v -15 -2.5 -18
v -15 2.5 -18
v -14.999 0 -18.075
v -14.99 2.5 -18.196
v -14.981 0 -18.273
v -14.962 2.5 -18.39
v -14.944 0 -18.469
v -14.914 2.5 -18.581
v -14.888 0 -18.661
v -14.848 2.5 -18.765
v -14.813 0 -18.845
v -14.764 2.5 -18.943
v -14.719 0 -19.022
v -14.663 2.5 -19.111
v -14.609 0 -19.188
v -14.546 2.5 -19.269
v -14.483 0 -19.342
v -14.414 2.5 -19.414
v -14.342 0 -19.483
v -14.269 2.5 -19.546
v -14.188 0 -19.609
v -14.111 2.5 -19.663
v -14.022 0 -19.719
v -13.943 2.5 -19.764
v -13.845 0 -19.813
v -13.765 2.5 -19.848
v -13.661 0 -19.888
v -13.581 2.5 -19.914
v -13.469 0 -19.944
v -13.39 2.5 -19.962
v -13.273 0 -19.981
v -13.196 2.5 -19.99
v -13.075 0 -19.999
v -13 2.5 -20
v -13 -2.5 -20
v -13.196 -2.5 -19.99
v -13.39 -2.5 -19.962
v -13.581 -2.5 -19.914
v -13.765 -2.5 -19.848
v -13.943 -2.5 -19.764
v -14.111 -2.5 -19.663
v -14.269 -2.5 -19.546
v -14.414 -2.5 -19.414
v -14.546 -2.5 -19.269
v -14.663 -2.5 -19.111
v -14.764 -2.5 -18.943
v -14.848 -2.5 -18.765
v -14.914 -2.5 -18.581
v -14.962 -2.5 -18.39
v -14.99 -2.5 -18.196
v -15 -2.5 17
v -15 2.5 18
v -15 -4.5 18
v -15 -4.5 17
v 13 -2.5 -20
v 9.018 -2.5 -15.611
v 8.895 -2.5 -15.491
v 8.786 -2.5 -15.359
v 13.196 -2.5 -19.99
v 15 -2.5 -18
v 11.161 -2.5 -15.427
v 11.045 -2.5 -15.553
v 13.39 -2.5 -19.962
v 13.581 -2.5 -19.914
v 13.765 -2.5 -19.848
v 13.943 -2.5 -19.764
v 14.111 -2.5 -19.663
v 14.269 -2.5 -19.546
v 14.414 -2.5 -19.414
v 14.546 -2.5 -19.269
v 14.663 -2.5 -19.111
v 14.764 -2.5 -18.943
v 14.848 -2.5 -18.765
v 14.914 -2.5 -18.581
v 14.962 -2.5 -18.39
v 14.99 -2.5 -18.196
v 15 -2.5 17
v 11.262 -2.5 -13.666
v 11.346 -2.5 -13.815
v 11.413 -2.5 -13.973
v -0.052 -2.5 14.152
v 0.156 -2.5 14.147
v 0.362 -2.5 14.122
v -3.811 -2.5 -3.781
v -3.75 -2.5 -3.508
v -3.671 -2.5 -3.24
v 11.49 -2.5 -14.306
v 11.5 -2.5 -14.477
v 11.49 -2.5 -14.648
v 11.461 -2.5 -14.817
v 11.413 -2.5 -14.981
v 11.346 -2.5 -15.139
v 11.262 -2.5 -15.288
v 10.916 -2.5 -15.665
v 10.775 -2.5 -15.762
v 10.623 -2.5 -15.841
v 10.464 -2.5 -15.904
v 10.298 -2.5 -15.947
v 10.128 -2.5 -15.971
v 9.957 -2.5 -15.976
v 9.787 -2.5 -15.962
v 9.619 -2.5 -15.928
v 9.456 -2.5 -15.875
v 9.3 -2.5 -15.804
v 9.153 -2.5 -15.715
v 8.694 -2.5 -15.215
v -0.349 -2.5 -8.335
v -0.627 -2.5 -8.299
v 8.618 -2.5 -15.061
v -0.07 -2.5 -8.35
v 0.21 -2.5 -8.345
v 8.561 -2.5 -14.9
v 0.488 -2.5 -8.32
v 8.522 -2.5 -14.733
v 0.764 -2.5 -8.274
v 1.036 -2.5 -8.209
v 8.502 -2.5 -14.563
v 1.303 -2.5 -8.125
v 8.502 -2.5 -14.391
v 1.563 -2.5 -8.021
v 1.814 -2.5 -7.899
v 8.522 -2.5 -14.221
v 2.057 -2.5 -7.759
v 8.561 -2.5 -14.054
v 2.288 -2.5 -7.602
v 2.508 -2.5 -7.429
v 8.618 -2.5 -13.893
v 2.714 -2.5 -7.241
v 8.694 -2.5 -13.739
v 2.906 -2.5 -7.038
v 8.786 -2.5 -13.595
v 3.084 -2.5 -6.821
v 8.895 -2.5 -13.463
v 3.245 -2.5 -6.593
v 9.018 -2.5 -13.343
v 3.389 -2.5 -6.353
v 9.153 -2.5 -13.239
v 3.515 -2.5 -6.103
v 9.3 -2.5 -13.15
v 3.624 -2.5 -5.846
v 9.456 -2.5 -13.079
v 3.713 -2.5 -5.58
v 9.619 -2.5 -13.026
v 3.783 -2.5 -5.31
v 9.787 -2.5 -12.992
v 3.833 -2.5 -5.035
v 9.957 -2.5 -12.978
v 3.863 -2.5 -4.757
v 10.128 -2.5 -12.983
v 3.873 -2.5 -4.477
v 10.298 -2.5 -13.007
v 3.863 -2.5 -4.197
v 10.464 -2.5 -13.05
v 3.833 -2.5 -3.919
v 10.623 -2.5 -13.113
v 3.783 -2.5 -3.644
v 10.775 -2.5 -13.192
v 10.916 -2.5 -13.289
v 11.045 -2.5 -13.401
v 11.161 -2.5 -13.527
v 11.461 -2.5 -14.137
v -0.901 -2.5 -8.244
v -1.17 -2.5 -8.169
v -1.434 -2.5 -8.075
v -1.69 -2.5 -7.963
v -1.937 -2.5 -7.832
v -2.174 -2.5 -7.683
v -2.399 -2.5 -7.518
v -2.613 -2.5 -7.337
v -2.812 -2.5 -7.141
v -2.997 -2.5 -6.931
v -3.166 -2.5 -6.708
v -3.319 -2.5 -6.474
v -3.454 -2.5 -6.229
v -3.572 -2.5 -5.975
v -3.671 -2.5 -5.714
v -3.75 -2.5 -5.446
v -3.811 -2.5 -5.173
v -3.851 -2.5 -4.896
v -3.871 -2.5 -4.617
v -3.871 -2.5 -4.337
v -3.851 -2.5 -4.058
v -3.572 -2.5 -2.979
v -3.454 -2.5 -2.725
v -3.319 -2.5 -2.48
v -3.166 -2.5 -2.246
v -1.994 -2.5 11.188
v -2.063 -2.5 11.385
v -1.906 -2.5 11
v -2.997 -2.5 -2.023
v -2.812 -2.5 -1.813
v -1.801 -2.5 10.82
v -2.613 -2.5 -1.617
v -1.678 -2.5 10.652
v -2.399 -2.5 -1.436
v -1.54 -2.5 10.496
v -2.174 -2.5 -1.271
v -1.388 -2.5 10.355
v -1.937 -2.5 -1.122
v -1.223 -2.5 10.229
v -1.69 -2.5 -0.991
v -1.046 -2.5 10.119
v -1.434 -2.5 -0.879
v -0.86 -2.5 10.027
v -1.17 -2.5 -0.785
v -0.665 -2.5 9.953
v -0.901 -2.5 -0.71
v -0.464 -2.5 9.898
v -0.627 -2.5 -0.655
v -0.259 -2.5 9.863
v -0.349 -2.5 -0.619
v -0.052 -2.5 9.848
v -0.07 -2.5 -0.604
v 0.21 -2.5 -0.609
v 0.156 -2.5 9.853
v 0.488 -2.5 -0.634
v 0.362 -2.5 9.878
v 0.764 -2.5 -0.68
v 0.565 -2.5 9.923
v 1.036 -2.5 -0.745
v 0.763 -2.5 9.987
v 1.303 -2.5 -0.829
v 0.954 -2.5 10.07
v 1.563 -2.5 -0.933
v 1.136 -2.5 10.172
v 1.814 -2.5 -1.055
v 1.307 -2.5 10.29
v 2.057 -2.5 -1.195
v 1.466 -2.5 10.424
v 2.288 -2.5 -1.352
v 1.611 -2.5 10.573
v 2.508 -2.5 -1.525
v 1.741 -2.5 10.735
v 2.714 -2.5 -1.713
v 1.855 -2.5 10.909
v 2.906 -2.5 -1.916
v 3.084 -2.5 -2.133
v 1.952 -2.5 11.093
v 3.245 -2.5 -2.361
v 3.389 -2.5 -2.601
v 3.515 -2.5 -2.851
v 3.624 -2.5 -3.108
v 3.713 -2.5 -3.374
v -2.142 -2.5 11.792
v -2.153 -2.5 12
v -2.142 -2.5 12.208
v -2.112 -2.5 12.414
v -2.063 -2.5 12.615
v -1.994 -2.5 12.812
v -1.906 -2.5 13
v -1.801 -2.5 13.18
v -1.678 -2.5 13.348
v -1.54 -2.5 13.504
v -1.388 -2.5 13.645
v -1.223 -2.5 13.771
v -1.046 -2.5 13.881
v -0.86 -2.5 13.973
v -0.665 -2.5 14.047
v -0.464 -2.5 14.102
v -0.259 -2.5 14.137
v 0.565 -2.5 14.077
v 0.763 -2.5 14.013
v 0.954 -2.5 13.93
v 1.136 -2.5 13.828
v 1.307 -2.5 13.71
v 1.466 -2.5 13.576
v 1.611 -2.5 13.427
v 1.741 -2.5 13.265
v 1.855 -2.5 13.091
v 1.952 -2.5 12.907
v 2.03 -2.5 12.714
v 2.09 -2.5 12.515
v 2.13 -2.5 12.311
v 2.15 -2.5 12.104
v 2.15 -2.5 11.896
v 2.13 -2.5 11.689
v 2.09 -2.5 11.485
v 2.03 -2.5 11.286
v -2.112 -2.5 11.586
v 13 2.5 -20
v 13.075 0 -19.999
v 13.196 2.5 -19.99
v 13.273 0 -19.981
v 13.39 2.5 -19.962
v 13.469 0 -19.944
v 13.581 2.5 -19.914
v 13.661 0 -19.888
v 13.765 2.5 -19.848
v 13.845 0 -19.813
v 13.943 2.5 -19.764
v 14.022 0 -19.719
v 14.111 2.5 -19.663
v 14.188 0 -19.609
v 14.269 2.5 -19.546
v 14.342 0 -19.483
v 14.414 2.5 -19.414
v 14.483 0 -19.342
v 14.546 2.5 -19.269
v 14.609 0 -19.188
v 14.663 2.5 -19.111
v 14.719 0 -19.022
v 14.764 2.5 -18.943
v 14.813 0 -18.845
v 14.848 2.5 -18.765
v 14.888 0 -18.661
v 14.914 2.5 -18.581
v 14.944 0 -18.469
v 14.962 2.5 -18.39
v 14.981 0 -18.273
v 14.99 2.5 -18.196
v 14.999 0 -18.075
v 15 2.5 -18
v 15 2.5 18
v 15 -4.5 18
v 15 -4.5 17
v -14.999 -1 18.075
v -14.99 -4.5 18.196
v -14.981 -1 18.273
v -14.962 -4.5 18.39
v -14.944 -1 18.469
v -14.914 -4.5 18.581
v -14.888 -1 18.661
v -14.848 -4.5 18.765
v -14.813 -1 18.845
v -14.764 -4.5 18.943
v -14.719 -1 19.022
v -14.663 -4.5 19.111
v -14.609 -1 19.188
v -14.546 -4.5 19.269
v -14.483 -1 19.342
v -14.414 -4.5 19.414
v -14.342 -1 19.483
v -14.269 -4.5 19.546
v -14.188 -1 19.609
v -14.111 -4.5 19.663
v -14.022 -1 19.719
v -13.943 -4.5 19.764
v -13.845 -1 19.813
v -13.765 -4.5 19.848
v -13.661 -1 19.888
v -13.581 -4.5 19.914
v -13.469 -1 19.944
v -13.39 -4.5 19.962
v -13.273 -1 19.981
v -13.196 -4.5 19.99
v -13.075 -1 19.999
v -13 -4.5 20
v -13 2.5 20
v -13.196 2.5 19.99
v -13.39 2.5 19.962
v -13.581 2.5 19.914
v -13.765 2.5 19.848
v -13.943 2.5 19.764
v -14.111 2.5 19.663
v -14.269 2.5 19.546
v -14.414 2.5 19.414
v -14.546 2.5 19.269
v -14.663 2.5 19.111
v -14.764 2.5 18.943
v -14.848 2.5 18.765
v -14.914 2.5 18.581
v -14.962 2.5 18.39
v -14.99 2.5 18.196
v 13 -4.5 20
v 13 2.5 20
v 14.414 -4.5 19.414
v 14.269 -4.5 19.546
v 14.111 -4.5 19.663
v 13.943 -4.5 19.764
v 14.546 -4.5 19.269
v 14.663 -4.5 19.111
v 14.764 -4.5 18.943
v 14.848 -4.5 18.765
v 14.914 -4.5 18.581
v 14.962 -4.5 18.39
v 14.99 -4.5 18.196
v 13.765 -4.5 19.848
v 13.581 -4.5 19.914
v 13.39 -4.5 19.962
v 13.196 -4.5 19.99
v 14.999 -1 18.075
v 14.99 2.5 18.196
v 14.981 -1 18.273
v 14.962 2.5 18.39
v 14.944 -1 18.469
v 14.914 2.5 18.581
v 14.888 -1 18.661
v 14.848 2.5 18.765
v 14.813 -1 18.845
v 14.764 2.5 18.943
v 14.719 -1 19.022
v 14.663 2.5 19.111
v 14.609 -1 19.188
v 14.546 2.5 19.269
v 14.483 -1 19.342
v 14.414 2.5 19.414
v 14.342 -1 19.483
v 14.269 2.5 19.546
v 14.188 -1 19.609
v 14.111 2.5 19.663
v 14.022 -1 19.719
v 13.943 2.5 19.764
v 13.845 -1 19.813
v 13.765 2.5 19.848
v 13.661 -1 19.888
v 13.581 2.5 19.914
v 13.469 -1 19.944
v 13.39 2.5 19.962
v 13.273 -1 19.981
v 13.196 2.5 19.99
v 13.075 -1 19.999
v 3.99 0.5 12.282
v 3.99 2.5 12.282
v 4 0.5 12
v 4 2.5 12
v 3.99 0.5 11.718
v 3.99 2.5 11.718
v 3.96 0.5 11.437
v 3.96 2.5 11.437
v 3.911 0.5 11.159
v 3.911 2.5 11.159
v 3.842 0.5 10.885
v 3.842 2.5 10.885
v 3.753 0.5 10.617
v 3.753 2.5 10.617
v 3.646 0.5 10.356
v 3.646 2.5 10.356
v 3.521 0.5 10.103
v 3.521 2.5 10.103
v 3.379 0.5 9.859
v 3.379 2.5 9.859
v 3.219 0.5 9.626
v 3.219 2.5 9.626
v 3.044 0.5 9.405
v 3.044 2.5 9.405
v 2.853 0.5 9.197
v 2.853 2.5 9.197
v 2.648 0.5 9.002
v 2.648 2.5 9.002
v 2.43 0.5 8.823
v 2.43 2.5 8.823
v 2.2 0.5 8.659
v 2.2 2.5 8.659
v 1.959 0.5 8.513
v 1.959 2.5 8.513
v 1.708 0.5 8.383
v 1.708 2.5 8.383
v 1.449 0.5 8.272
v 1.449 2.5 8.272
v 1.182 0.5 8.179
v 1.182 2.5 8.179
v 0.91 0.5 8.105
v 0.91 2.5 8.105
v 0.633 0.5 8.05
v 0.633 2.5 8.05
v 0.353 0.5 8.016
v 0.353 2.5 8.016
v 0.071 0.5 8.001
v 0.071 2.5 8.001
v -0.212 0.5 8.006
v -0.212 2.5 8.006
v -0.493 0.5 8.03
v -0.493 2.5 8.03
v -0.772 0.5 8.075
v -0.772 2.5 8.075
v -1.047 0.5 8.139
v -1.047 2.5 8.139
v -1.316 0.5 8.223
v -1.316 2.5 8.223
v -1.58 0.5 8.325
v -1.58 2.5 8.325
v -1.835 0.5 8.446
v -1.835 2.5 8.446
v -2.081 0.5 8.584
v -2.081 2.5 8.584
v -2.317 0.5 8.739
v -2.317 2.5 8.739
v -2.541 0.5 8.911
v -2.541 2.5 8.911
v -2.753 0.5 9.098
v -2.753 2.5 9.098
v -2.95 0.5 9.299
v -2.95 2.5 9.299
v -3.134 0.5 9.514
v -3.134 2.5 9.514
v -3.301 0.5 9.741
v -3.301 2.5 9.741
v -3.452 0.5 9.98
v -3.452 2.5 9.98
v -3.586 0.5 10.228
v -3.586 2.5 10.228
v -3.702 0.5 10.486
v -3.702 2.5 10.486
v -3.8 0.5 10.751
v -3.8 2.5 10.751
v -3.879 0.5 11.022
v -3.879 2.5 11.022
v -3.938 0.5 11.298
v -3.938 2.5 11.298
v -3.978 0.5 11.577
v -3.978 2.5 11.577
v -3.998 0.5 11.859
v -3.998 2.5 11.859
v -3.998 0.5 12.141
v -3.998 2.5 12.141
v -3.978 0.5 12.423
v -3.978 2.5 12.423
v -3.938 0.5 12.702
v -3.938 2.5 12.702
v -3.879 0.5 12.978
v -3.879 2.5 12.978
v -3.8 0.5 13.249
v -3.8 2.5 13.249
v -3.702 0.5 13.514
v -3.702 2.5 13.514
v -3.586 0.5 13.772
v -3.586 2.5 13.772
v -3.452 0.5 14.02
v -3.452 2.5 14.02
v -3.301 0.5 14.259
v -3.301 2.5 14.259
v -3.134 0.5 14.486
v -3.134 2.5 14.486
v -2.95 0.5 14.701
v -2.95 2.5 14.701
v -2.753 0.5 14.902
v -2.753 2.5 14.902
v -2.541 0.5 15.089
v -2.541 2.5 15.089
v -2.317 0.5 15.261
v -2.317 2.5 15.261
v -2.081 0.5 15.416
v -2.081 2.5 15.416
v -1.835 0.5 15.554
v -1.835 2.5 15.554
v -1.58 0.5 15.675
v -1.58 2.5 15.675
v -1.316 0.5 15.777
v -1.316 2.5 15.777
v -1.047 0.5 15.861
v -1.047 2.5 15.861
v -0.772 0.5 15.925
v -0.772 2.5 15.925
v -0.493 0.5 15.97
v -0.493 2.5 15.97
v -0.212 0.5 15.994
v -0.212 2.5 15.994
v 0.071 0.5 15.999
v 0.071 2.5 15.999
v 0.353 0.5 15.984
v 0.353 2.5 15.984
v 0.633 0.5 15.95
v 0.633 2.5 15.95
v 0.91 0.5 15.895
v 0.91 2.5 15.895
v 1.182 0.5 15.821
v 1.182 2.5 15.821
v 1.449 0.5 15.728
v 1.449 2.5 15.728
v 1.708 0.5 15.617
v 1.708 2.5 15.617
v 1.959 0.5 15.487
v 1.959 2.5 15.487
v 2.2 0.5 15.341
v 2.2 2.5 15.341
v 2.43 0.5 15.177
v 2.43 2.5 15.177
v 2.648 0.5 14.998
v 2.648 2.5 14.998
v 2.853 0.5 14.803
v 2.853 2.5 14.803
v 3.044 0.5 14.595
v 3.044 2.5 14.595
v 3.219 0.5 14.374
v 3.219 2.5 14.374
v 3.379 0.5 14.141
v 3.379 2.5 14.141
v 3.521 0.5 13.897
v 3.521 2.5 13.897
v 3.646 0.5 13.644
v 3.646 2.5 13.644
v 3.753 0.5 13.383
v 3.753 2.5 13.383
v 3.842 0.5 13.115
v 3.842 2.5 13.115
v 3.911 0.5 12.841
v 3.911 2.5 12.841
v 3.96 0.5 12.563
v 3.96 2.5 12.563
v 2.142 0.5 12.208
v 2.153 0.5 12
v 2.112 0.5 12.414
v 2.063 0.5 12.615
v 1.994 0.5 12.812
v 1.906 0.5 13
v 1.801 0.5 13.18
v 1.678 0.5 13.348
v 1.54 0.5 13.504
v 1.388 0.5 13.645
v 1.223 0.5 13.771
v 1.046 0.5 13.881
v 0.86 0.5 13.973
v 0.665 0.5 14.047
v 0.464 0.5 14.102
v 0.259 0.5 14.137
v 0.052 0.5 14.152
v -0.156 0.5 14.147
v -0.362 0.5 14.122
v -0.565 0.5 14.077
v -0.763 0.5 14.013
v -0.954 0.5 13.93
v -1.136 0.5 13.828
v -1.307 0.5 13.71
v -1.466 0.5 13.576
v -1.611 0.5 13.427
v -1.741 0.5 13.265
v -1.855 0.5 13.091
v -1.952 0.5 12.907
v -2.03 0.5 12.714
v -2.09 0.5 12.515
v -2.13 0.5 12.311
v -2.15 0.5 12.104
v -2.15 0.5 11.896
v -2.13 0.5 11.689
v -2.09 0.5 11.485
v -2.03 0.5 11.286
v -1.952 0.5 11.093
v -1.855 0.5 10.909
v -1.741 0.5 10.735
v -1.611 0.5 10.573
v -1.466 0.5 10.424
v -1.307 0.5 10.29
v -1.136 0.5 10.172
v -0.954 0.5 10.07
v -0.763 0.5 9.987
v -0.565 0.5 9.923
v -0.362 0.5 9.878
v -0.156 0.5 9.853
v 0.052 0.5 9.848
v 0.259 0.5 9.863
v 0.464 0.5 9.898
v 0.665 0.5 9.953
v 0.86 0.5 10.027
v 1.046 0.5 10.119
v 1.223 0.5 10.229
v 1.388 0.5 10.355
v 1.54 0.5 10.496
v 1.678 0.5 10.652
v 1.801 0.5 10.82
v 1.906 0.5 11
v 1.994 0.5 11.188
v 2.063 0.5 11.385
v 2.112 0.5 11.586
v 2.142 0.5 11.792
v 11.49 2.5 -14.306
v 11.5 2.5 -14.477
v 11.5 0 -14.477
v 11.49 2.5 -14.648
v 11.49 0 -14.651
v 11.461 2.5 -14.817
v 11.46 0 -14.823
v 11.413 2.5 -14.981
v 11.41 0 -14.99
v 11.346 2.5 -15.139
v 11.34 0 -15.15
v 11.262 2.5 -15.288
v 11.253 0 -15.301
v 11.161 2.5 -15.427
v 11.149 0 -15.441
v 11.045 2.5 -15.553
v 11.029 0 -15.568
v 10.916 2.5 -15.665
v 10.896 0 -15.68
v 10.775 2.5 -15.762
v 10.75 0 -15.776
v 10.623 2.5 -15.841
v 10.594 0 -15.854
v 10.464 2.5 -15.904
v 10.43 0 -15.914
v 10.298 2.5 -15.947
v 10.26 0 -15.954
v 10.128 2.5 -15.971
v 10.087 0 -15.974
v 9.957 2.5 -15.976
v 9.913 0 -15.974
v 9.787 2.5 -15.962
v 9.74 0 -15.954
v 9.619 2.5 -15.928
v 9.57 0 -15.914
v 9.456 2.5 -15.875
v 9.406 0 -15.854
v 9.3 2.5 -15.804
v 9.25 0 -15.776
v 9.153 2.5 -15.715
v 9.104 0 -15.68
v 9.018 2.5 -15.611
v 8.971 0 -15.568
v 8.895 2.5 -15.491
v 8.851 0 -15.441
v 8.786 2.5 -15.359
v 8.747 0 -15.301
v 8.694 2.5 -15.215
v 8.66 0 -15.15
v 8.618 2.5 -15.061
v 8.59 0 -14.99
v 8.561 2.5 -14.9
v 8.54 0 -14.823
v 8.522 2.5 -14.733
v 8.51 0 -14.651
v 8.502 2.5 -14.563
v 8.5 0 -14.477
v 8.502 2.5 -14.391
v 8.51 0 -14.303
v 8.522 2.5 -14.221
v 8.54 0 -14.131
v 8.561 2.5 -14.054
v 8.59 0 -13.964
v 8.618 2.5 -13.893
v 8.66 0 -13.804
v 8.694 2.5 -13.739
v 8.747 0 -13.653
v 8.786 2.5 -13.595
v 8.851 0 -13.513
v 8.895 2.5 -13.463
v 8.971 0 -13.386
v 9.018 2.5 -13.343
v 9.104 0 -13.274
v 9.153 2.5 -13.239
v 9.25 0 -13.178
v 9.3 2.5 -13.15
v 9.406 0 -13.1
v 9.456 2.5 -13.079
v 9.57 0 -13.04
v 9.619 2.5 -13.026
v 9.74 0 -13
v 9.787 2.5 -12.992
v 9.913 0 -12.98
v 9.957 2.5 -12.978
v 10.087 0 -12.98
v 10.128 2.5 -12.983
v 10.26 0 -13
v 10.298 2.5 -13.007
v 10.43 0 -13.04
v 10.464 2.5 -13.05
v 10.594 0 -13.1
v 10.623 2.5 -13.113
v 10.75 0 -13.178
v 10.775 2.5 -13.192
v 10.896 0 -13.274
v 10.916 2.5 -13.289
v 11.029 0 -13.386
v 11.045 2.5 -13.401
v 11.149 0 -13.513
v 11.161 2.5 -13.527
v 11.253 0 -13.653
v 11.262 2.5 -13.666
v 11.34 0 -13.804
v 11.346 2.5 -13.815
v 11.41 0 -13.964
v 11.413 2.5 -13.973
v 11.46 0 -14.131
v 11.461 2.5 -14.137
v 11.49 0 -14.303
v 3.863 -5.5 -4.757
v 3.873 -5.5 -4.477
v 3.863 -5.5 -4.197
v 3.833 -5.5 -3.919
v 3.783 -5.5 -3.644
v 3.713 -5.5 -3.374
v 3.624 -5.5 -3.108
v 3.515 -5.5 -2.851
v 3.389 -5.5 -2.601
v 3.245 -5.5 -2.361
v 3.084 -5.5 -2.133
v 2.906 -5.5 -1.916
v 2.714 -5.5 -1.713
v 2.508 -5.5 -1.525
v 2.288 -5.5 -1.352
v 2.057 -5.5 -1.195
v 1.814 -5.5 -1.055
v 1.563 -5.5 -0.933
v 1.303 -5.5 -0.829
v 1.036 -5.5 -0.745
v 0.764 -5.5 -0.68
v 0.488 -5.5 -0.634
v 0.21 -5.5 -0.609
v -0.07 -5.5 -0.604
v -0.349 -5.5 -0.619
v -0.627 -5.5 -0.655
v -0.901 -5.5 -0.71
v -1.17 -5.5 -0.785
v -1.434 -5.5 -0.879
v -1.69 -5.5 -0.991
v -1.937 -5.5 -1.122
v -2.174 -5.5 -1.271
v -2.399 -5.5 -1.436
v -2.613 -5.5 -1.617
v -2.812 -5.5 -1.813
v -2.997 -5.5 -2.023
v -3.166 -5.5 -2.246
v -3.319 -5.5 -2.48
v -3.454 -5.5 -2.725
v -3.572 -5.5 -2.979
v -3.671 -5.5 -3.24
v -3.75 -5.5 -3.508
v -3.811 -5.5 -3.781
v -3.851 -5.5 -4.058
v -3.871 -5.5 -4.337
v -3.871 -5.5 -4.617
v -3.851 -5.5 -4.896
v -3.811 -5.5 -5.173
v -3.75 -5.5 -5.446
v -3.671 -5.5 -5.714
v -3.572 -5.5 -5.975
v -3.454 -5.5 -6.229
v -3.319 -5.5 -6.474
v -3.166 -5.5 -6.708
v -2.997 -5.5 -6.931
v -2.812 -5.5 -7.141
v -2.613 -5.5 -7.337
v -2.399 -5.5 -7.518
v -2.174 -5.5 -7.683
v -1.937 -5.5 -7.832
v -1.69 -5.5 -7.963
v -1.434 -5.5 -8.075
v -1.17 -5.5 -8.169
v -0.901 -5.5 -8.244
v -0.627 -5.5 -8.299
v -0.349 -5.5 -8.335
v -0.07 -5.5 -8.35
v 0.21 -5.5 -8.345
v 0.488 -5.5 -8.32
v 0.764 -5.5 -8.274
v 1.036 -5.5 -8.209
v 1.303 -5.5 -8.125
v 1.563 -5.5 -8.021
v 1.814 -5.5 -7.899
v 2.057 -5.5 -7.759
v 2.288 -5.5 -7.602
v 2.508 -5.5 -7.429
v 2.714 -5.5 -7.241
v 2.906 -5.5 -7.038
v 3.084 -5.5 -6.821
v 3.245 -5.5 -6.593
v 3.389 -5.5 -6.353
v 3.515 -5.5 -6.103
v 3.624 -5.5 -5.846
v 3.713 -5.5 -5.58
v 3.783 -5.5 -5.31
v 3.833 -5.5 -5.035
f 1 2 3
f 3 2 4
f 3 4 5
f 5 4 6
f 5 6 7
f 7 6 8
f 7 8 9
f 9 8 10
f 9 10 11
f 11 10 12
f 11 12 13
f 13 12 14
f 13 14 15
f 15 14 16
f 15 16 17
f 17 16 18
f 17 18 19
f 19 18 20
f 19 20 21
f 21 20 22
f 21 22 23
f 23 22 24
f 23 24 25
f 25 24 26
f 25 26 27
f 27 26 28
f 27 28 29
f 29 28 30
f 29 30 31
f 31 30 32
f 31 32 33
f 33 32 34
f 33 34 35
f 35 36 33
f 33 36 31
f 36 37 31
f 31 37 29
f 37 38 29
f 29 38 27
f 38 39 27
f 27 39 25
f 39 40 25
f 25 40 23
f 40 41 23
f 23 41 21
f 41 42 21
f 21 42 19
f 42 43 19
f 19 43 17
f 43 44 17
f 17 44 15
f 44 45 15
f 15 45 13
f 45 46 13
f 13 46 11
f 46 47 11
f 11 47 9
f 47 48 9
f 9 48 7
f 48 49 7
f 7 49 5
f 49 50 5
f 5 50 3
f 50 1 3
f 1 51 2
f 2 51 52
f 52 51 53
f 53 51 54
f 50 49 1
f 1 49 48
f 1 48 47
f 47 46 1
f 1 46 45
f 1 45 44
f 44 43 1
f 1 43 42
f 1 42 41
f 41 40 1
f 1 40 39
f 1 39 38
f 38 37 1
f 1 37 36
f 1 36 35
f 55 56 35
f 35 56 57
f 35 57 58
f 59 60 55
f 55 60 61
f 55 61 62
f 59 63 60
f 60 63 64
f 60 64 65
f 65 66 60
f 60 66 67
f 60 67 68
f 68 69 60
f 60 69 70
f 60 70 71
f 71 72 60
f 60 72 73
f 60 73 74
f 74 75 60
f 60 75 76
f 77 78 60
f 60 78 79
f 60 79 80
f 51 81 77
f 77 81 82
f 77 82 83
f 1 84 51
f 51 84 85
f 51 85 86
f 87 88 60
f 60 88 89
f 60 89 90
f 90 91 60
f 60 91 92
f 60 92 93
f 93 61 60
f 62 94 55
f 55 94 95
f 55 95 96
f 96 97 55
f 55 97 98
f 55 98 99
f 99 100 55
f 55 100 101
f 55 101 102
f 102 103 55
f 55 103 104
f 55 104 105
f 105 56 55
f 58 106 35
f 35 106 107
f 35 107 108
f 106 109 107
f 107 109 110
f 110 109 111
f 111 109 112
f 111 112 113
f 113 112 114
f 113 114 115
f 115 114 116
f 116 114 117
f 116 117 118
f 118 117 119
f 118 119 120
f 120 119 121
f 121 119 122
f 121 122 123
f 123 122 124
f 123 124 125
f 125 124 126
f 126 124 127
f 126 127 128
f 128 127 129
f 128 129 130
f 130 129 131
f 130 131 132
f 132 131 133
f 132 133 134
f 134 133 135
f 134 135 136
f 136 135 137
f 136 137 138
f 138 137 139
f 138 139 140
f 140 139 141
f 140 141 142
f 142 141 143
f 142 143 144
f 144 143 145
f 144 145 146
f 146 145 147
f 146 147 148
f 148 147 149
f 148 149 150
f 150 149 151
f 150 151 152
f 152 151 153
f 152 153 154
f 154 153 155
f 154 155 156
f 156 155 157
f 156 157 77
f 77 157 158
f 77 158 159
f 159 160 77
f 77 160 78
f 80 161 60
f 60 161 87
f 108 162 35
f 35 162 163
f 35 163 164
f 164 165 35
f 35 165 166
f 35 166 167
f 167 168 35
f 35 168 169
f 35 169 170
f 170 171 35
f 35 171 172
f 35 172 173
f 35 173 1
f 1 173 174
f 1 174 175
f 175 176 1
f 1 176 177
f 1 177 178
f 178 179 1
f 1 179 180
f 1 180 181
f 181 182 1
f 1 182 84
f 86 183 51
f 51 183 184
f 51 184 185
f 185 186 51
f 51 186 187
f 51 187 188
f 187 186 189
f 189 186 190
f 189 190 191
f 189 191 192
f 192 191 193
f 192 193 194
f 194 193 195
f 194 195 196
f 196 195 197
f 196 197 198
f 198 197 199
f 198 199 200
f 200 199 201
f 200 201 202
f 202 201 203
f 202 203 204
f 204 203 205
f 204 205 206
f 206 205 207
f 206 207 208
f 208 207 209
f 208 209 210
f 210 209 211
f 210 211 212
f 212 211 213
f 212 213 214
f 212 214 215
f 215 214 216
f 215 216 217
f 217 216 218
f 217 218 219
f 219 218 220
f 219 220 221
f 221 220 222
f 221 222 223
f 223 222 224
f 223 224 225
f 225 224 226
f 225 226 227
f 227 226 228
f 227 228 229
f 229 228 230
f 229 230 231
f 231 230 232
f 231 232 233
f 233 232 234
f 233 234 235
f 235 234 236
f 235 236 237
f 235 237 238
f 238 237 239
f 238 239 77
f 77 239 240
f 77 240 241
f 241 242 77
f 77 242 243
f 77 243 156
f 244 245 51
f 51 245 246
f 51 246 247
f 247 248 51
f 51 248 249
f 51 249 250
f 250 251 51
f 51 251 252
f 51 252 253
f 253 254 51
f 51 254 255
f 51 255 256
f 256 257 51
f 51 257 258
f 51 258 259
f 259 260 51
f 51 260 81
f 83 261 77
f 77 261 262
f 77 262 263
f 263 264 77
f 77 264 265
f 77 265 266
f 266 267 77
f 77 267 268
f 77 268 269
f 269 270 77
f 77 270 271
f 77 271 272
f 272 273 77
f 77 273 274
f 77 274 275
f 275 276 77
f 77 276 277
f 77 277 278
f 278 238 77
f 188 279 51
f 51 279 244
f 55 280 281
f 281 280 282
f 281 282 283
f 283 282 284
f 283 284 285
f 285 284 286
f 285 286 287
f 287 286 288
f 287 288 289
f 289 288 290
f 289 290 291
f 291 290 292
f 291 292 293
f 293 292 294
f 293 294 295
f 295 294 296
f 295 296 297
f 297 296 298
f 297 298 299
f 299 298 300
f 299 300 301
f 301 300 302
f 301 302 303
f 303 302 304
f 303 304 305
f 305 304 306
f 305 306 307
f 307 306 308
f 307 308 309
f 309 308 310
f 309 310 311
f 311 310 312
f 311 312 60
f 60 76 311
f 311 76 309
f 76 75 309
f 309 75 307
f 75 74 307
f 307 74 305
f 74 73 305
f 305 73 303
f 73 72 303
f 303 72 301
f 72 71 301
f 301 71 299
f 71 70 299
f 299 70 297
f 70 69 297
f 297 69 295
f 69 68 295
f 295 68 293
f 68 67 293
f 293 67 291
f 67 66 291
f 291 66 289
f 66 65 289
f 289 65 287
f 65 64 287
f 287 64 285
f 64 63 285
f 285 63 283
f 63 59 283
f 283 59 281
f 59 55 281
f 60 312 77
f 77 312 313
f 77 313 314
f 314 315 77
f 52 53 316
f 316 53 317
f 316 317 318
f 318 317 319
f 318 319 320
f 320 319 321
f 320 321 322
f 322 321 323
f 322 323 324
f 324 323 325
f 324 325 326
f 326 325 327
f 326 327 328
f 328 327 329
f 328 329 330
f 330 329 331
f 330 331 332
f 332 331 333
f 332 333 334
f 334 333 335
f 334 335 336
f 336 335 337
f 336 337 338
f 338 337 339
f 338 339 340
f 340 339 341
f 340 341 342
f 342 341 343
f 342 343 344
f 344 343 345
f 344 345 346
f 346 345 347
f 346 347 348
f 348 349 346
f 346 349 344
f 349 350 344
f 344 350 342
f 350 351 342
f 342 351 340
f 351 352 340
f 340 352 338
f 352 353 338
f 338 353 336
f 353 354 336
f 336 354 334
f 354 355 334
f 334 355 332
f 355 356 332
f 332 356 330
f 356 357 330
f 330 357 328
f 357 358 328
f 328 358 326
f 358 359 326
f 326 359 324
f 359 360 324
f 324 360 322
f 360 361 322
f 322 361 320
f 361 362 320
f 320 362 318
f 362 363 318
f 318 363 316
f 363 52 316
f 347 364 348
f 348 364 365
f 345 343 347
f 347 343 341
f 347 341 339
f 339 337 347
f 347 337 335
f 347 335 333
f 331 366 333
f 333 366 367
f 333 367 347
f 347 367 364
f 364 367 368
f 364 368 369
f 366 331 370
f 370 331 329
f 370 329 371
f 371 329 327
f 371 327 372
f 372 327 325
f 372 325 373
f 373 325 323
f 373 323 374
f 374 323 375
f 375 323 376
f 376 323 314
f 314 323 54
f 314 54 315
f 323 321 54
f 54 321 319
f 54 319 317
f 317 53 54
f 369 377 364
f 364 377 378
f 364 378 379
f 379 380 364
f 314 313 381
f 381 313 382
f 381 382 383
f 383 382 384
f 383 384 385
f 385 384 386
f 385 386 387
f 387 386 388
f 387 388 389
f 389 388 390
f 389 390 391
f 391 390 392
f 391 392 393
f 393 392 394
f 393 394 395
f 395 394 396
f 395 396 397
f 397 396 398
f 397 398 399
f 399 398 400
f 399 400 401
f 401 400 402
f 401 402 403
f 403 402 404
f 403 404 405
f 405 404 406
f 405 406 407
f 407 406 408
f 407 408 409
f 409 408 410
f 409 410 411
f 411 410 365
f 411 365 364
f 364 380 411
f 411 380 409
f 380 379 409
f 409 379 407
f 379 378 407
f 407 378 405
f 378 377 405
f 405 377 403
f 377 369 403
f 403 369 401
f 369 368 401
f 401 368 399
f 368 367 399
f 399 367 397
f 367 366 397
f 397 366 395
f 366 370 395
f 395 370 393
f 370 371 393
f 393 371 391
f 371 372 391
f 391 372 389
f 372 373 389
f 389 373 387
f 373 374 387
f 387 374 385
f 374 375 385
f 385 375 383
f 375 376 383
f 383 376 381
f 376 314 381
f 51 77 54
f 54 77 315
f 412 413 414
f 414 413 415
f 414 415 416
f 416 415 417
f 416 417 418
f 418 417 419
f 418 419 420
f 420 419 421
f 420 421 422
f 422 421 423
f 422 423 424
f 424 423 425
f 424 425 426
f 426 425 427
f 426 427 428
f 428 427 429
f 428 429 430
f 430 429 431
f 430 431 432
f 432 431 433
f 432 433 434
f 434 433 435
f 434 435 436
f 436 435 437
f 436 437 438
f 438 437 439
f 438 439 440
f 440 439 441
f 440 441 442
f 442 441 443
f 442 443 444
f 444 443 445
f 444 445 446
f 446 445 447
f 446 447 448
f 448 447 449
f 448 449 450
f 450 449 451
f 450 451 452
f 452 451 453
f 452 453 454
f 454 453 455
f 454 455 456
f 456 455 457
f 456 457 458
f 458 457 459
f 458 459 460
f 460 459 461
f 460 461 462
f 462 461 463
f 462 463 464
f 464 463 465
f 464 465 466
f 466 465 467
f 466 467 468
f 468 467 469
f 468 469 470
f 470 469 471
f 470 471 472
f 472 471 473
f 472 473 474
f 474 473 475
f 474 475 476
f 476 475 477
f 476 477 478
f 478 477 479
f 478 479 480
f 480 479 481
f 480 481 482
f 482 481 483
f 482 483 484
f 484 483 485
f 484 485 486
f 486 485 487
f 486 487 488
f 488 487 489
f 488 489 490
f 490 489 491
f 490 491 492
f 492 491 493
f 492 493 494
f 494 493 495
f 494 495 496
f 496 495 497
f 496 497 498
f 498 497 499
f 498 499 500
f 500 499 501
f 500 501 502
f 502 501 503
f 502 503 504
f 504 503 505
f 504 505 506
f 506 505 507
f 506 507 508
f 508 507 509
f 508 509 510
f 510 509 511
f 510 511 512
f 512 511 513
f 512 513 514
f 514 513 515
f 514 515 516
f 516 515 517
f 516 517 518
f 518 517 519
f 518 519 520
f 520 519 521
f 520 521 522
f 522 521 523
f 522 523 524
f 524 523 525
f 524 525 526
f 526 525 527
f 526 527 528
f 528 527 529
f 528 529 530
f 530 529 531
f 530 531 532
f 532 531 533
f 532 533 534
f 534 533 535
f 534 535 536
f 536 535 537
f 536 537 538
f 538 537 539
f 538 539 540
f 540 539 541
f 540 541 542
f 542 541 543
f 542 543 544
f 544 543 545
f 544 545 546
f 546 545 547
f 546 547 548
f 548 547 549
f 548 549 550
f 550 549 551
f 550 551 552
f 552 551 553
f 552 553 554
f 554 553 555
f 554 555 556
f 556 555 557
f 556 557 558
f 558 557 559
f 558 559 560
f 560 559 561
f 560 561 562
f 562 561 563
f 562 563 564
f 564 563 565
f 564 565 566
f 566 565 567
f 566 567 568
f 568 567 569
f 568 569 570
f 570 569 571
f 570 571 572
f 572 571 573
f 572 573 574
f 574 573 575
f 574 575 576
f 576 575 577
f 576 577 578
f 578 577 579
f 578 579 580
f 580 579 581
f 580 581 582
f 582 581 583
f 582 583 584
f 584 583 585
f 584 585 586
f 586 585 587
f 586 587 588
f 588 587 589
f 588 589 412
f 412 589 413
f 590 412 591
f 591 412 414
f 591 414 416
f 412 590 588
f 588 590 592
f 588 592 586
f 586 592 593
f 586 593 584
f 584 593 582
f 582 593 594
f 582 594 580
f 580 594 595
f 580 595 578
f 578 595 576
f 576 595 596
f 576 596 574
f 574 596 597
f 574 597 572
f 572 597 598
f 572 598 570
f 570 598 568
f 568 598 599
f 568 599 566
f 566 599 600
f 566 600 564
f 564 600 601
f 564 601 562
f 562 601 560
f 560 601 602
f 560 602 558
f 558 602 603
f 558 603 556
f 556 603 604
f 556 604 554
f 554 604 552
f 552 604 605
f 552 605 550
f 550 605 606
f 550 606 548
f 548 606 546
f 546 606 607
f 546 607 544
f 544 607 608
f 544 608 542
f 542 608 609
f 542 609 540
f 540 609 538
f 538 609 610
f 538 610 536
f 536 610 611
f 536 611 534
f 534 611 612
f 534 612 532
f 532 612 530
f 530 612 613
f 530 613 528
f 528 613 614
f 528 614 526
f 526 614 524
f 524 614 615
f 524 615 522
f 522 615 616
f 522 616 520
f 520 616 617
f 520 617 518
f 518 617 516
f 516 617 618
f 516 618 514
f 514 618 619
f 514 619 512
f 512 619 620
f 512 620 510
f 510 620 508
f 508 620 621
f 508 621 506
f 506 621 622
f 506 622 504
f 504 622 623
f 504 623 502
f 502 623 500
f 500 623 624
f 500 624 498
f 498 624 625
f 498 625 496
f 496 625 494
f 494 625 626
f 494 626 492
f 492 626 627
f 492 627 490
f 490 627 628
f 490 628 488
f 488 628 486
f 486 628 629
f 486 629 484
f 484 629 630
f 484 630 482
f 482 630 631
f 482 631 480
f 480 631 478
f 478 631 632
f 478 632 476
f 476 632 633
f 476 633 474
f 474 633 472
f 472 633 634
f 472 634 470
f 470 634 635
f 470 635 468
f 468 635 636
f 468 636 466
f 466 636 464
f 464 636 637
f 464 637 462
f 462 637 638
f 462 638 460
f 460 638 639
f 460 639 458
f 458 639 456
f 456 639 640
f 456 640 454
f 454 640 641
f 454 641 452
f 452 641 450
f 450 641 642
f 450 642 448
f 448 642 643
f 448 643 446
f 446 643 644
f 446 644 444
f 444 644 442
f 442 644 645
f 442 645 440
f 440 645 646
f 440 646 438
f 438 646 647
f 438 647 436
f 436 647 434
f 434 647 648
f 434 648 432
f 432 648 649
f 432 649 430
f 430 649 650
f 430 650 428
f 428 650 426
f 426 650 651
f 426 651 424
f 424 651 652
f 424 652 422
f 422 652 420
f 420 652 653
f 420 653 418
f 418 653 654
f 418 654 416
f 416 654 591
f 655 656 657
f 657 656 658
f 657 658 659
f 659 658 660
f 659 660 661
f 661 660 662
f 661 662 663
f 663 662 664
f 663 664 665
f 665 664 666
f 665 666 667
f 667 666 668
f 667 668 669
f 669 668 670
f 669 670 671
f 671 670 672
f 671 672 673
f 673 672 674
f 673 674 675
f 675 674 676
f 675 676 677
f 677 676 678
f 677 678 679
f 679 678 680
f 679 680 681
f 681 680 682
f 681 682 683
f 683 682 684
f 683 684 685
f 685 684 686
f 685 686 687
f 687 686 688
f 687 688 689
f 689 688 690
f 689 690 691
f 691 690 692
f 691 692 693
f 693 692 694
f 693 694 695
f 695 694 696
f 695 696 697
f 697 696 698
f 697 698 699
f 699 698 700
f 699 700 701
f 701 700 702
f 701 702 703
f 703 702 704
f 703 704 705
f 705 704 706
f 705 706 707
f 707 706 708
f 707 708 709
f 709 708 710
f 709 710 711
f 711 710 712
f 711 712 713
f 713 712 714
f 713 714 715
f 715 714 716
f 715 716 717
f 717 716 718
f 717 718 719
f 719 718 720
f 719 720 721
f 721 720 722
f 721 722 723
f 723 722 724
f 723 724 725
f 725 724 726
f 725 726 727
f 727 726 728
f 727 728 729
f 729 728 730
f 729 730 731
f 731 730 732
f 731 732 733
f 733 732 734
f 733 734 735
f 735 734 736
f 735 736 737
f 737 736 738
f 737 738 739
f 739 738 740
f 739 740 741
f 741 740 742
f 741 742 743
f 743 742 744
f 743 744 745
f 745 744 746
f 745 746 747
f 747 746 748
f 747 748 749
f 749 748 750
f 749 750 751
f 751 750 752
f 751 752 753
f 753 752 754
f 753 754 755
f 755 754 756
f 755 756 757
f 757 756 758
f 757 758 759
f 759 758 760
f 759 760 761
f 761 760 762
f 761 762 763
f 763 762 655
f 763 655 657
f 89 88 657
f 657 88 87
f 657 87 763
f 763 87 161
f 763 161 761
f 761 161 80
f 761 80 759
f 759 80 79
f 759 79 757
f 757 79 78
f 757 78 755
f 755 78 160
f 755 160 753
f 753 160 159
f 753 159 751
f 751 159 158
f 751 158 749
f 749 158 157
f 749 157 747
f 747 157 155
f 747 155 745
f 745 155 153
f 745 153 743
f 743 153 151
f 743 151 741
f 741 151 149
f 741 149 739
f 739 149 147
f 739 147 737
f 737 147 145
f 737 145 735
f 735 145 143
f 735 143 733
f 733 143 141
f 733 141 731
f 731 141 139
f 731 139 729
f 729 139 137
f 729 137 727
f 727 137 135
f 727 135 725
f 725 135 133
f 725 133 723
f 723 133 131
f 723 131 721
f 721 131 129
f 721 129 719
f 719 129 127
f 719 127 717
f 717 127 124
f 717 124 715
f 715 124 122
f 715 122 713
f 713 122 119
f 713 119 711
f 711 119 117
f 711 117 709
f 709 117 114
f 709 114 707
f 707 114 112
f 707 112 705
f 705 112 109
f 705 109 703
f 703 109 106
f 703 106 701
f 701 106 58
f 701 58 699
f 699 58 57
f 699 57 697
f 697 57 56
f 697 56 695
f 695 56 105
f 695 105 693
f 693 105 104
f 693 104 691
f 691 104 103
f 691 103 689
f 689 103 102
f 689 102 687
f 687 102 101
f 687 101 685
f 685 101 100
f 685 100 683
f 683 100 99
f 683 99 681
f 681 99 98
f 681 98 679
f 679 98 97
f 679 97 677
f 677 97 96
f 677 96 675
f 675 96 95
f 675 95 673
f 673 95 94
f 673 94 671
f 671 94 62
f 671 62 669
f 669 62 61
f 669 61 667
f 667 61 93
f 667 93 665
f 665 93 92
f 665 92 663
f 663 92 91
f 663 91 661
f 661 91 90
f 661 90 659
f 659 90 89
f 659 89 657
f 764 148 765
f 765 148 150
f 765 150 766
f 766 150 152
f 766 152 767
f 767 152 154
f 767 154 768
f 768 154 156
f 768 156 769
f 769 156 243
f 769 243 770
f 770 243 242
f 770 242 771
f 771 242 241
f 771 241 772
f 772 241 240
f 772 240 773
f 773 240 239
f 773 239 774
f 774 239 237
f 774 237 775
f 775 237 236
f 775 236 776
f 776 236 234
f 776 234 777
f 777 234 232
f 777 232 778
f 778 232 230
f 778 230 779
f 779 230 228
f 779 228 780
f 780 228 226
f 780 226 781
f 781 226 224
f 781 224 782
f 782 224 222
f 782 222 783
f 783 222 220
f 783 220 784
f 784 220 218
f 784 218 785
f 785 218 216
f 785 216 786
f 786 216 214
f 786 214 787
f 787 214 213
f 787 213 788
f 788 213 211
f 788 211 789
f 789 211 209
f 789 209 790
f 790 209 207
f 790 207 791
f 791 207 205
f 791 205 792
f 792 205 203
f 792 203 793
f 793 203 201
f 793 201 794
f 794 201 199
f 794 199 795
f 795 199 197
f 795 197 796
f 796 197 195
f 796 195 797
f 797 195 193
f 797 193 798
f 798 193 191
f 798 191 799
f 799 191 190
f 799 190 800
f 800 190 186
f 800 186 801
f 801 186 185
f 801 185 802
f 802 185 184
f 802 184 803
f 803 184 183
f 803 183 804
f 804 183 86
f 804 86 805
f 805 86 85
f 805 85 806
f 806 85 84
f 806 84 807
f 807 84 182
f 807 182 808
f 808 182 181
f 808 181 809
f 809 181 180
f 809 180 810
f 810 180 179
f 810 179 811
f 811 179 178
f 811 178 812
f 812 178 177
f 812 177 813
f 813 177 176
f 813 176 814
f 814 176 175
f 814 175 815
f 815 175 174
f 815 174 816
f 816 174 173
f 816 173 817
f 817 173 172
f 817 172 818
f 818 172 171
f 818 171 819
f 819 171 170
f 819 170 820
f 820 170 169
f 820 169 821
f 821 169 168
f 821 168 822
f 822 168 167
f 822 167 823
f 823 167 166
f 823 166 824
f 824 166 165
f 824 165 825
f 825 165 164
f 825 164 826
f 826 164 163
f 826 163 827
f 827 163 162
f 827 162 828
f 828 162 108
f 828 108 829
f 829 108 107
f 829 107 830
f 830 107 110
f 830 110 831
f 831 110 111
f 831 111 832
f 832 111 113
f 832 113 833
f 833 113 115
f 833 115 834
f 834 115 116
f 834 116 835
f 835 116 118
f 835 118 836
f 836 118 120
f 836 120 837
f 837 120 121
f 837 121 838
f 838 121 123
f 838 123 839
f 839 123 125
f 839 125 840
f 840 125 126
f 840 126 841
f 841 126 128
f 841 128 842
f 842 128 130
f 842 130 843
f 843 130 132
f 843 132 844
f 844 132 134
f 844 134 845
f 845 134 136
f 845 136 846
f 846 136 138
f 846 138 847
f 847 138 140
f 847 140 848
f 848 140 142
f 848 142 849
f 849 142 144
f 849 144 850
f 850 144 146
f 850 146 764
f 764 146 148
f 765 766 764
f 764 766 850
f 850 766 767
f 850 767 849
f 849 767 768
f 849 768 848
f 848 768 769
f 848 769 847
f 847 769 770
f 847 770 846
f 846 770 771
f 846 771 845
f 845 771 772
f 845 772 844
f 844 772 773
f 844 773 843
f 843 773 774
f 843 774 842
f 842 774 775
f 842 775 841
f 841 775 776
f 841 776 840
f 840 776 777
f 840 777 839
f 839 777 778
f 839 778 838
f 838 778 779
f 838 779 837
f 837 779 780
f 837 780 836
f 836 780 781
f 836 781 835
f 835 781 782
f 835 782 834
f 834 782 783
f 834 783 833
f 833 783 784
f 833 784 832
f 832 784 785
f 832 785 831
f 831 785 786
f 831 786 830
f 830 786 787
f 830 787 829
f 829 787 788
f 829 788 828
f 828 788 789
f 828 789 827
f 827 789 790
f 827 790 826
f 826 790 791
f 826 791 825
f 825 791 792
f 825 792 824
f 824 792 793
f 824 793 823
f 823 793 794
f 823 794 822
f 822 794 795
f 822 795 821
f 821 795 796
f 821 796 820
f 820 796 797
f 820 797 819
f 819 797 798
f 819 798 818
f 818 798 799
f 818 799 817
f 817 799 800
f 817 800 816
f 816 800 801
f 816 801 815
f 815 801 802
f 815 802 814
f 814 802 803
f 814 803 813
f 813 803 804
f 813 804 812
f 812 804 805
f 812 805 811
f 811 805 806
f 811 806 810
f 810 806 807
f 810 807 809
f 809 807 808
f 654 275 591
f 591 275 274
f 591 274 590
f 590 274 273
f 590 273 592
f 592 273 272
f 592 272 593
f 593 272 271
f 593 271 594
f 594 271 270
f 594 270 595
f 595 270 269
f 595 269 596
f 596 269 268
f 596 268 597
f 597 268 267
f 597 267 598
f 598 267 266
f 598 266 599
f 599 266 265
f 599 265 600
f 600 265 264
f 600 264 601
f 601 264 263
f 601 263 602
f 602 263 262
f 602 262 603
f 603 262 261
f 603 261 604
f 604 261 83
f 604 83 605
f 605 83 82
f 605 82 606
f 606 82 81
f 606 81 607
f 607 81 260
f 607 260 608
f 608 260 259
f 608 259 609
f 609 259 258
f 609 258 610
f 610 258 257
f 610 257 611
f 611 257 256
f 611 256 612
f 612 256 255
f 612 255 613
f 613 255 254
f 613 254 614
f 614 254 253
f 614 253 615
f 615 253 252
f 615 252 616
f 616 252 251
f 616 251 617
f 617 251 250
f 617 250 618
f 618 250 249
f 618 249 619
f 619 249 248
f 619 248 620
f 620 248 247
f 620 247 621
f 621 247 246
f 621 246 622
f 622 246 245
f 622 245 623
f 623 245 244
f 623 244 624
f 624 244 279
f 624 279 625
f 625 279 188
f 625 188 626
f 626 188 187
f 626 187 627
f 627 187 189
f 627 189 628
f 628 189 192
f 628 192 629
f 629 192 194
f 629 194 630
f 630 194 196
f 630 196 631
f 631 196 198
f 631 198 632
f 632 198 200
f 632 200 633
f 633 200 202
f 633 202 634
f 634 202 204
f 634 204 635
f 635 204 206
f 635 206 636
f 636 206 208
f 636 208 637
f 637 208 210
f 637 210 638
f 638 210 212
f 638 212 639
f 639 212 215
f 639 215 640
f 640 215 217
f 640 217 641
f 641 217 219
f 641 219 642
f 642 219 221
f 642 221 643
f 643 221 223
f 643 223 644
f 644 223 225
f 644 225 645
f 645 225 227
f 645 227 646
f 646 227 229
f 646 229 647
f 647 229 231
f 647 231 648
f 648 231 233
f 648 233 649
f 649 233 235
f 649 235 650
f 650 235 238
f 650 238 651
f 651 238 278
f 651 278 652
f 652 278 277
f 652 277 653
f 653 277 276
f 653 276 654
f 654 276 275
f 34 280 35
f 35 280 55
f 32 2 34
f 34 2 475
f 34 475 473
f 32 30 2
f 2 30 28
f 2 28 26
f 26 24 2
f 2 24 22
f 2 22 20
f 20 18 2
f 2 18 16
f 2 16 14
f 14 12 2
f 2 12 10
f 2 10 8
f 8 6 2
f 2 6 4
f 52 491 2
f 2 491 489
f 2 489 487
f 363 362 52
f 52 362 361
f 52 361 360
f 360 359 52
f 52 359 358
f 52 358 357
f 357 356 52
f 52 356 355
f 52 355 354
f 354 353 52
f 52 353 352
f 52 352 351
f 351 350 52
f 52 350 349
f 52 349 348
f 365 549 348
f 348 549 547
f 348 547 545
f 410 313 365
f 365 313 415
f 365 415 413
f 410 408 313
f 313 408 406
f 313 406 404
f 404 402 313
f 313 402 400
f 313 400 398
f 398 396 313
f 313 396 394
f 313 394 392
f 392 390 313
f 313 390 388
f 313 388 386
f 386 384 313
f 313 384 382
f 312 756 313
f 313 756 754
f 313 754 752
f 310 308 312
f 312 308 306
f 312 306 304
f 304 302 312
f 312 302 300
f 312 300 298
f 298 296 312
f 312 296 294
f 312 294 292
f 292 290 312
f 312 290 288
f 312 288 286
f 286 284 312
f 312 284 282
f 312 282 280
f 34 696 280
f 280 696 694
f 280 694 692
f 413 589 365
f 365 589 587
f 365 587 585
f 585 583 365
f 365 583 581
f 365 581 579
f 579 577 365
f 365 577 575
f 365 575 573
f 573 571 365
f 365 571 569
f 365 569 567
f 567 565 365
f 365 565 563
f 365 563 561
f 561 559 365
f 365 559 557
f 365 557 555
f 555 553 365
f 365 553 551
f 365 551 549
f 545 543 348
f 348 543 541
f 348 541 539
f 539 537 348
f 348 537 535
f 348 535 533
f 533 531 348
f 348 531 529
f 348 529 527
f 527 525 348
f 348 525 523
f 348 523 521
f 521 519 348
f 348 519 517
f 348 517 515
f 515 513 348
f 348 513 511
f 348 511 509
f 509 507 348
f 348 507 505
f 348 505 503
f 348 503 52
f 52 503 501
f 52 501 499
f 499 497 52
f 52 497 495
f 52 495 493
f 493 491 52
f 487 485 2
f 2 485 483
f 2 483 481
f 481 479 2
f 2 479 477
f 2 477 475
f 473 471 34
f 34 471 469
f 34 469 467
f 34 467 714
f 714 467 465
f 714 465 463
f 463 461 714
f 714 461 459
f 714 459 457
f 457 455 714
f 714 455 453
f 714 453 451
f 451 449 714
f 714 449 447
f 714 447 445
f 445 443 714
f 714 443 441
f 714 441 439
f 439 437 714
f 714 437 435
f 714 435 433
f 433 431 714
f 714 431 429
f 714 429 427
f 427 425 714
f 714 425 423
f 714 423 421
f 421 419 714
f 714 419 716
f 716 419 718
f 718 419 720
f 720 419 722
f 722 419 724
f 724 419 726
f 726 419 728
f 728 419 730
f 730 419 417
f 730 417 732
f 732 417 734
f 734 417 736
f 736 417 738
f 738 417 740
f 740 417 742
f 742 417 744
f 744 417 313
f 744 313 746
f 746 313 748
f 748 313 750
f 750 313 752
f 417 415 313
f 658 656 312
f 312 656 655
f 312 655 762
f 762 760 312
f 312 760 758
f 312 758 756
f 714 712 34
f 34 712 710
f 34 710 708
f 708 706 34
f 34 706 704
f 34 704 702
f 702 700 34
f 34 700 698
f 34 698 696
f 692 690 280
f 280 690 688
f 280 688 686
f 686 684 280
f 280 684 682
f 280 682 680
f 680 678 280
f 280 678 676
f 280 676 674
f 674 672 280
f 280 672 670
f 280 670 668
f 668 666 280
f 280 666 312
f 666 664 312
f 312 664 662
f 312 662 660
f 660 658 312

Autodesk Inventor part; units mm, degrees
ref_plane "YZ Plane" through (0, 0, 0) normal (1, 0, 0) x (0, 1, 0)
ref_plane "XZ Plane" through (0, 0, 0) normal (0, 1, 0) x (-1, 0, 0)
ref_plane "XY Plane" through (0, 0, 0) normal (0, 0, 1) x (1, 0, 0)
sketch "Sketch1" plane through (0, 0, 0) normal (0, 1, 0) x (-1, 0, 0)
  line L0 (15, 20) -> (-15, 20)
  line L1 (-15, 20) -> (-15, -20)
  line L2 (-15, -20) -> (15, -20)
  line L3 (15, -20) -> (15, 20)
  line L4 (15, 20) -> (-15, -20) construction
  line L5 (-15, 20) -> (15, -20) construction
  point P0 (0, 0)
  dimension "d2" = 30
  dimension "d3" = 40
extrude "Extrusion1" add sketch "Sketch1" along normal mid plane 5
sketch "Sketch3" plane through (0, 2.5, 0) normal (0, 1, 0) x (1, 0, 0)
  line L0 (-15, 20) -> (-15, -20) projected
  line L1 (15, -20) -> (15, 20) projected
  line L2 (-15, -20) -> (15, -20) projected
  line L3 (15, 20) -> (-15, 20) projected
  point P0 (0, 0)
  point P1 (0, -12)
  point P2 (-15, 0)
  dimension "d28" = 8
hole "Hole1" at (0, 2.5, 12) direction (0, -1, 0) diameter 4.305 end through all clearance for "Flat Head Machine Screw (82)" size "#6" standard "Ansi Unified Screw Threads"
sketch "Sketch4" plane through (0, -2.5, 0) normal (0, -1, 0) x (1, 0, 0)
  circle A0 centre (0, -4.477) radius 3.8735
  circle A1 centre (0, 12) radius 2.1525 projected
  point P0 (0, 0)
  dimension "d16" = 7.747
  dimension "d17" = 16.477
extrude "Extrusion3" add sketch "Sketch4" along normal blind 3 contours A0
sketch "Sketch5" plane through (0, -2.5, 0) normal (0, -1, 0) x (1, 0, 0)
  circle A0 centre (10, -14.477) radius 1.5
  line L0 (-15, -20) -> (15, -20) projected
  line L1 (-15, 20) -> (-15, -20) projected
  line L2 (15, -20) -> (15, 20) projected
  circle A1 centre (0, -4.477) radius 3.8735 projected
  circle A2 centre (0, 12) radius 2.1525 projected
  line L3 (15, 20) -> (-15, 20) projected
  line L4 (-15, 20) -> (-15, -20) projected
  line L5 (-15, -20) -> (15, -20) projected
  line L6 (15, -20) -> (15, 20) projected
  point P0 (0, 0)
  dimension "d20" = 3
  dimension "d33" = 10
  dimension "d34" = 10
extrude "Extrusion4" cut sketch "Sketch5" against normal through all contours A0
sketch "Sketch6" plane through (0, 2.5, 0) normal (0, 1, 0) x (1, 0, 0)
  circle A0 centre (0, -12) radius 2.1525 projected
  circle A1 centre (0, -12) radius 4
  point P0 (0, 0)
  dimension "d30" = 8
extrude "Extrusion5" cut sketch "Sketch6" against normal blind 2
sketch "Sketch7" plane through (0, -2.5, 0) normal (0, -1, 0) x (1, 0, 0)
  line L0 (15, 20) -> (15, -20) projected
  line L1 (15, 20) -> (-15, 20)
  line L2 (-15, 20) -> (-15, 17)
  line L3 (-15, 17) -> (15, 17)
  line L4 (15, 17) -> (15, 20)
  line L5 (-15, 20) -> (-15, -20) projected
  point P0 (0, 0)
  dimension "d35" = 3
extrude "Extrusion6" add sketch "Sketch7" along normal blind 2
fillet "Fillet1" radius 2 4 edges at (15, -1, 20) (-15, -1, 20) (15, 0, -20) (-15, 0, -20)
properties part number "PinionHolderTest"
